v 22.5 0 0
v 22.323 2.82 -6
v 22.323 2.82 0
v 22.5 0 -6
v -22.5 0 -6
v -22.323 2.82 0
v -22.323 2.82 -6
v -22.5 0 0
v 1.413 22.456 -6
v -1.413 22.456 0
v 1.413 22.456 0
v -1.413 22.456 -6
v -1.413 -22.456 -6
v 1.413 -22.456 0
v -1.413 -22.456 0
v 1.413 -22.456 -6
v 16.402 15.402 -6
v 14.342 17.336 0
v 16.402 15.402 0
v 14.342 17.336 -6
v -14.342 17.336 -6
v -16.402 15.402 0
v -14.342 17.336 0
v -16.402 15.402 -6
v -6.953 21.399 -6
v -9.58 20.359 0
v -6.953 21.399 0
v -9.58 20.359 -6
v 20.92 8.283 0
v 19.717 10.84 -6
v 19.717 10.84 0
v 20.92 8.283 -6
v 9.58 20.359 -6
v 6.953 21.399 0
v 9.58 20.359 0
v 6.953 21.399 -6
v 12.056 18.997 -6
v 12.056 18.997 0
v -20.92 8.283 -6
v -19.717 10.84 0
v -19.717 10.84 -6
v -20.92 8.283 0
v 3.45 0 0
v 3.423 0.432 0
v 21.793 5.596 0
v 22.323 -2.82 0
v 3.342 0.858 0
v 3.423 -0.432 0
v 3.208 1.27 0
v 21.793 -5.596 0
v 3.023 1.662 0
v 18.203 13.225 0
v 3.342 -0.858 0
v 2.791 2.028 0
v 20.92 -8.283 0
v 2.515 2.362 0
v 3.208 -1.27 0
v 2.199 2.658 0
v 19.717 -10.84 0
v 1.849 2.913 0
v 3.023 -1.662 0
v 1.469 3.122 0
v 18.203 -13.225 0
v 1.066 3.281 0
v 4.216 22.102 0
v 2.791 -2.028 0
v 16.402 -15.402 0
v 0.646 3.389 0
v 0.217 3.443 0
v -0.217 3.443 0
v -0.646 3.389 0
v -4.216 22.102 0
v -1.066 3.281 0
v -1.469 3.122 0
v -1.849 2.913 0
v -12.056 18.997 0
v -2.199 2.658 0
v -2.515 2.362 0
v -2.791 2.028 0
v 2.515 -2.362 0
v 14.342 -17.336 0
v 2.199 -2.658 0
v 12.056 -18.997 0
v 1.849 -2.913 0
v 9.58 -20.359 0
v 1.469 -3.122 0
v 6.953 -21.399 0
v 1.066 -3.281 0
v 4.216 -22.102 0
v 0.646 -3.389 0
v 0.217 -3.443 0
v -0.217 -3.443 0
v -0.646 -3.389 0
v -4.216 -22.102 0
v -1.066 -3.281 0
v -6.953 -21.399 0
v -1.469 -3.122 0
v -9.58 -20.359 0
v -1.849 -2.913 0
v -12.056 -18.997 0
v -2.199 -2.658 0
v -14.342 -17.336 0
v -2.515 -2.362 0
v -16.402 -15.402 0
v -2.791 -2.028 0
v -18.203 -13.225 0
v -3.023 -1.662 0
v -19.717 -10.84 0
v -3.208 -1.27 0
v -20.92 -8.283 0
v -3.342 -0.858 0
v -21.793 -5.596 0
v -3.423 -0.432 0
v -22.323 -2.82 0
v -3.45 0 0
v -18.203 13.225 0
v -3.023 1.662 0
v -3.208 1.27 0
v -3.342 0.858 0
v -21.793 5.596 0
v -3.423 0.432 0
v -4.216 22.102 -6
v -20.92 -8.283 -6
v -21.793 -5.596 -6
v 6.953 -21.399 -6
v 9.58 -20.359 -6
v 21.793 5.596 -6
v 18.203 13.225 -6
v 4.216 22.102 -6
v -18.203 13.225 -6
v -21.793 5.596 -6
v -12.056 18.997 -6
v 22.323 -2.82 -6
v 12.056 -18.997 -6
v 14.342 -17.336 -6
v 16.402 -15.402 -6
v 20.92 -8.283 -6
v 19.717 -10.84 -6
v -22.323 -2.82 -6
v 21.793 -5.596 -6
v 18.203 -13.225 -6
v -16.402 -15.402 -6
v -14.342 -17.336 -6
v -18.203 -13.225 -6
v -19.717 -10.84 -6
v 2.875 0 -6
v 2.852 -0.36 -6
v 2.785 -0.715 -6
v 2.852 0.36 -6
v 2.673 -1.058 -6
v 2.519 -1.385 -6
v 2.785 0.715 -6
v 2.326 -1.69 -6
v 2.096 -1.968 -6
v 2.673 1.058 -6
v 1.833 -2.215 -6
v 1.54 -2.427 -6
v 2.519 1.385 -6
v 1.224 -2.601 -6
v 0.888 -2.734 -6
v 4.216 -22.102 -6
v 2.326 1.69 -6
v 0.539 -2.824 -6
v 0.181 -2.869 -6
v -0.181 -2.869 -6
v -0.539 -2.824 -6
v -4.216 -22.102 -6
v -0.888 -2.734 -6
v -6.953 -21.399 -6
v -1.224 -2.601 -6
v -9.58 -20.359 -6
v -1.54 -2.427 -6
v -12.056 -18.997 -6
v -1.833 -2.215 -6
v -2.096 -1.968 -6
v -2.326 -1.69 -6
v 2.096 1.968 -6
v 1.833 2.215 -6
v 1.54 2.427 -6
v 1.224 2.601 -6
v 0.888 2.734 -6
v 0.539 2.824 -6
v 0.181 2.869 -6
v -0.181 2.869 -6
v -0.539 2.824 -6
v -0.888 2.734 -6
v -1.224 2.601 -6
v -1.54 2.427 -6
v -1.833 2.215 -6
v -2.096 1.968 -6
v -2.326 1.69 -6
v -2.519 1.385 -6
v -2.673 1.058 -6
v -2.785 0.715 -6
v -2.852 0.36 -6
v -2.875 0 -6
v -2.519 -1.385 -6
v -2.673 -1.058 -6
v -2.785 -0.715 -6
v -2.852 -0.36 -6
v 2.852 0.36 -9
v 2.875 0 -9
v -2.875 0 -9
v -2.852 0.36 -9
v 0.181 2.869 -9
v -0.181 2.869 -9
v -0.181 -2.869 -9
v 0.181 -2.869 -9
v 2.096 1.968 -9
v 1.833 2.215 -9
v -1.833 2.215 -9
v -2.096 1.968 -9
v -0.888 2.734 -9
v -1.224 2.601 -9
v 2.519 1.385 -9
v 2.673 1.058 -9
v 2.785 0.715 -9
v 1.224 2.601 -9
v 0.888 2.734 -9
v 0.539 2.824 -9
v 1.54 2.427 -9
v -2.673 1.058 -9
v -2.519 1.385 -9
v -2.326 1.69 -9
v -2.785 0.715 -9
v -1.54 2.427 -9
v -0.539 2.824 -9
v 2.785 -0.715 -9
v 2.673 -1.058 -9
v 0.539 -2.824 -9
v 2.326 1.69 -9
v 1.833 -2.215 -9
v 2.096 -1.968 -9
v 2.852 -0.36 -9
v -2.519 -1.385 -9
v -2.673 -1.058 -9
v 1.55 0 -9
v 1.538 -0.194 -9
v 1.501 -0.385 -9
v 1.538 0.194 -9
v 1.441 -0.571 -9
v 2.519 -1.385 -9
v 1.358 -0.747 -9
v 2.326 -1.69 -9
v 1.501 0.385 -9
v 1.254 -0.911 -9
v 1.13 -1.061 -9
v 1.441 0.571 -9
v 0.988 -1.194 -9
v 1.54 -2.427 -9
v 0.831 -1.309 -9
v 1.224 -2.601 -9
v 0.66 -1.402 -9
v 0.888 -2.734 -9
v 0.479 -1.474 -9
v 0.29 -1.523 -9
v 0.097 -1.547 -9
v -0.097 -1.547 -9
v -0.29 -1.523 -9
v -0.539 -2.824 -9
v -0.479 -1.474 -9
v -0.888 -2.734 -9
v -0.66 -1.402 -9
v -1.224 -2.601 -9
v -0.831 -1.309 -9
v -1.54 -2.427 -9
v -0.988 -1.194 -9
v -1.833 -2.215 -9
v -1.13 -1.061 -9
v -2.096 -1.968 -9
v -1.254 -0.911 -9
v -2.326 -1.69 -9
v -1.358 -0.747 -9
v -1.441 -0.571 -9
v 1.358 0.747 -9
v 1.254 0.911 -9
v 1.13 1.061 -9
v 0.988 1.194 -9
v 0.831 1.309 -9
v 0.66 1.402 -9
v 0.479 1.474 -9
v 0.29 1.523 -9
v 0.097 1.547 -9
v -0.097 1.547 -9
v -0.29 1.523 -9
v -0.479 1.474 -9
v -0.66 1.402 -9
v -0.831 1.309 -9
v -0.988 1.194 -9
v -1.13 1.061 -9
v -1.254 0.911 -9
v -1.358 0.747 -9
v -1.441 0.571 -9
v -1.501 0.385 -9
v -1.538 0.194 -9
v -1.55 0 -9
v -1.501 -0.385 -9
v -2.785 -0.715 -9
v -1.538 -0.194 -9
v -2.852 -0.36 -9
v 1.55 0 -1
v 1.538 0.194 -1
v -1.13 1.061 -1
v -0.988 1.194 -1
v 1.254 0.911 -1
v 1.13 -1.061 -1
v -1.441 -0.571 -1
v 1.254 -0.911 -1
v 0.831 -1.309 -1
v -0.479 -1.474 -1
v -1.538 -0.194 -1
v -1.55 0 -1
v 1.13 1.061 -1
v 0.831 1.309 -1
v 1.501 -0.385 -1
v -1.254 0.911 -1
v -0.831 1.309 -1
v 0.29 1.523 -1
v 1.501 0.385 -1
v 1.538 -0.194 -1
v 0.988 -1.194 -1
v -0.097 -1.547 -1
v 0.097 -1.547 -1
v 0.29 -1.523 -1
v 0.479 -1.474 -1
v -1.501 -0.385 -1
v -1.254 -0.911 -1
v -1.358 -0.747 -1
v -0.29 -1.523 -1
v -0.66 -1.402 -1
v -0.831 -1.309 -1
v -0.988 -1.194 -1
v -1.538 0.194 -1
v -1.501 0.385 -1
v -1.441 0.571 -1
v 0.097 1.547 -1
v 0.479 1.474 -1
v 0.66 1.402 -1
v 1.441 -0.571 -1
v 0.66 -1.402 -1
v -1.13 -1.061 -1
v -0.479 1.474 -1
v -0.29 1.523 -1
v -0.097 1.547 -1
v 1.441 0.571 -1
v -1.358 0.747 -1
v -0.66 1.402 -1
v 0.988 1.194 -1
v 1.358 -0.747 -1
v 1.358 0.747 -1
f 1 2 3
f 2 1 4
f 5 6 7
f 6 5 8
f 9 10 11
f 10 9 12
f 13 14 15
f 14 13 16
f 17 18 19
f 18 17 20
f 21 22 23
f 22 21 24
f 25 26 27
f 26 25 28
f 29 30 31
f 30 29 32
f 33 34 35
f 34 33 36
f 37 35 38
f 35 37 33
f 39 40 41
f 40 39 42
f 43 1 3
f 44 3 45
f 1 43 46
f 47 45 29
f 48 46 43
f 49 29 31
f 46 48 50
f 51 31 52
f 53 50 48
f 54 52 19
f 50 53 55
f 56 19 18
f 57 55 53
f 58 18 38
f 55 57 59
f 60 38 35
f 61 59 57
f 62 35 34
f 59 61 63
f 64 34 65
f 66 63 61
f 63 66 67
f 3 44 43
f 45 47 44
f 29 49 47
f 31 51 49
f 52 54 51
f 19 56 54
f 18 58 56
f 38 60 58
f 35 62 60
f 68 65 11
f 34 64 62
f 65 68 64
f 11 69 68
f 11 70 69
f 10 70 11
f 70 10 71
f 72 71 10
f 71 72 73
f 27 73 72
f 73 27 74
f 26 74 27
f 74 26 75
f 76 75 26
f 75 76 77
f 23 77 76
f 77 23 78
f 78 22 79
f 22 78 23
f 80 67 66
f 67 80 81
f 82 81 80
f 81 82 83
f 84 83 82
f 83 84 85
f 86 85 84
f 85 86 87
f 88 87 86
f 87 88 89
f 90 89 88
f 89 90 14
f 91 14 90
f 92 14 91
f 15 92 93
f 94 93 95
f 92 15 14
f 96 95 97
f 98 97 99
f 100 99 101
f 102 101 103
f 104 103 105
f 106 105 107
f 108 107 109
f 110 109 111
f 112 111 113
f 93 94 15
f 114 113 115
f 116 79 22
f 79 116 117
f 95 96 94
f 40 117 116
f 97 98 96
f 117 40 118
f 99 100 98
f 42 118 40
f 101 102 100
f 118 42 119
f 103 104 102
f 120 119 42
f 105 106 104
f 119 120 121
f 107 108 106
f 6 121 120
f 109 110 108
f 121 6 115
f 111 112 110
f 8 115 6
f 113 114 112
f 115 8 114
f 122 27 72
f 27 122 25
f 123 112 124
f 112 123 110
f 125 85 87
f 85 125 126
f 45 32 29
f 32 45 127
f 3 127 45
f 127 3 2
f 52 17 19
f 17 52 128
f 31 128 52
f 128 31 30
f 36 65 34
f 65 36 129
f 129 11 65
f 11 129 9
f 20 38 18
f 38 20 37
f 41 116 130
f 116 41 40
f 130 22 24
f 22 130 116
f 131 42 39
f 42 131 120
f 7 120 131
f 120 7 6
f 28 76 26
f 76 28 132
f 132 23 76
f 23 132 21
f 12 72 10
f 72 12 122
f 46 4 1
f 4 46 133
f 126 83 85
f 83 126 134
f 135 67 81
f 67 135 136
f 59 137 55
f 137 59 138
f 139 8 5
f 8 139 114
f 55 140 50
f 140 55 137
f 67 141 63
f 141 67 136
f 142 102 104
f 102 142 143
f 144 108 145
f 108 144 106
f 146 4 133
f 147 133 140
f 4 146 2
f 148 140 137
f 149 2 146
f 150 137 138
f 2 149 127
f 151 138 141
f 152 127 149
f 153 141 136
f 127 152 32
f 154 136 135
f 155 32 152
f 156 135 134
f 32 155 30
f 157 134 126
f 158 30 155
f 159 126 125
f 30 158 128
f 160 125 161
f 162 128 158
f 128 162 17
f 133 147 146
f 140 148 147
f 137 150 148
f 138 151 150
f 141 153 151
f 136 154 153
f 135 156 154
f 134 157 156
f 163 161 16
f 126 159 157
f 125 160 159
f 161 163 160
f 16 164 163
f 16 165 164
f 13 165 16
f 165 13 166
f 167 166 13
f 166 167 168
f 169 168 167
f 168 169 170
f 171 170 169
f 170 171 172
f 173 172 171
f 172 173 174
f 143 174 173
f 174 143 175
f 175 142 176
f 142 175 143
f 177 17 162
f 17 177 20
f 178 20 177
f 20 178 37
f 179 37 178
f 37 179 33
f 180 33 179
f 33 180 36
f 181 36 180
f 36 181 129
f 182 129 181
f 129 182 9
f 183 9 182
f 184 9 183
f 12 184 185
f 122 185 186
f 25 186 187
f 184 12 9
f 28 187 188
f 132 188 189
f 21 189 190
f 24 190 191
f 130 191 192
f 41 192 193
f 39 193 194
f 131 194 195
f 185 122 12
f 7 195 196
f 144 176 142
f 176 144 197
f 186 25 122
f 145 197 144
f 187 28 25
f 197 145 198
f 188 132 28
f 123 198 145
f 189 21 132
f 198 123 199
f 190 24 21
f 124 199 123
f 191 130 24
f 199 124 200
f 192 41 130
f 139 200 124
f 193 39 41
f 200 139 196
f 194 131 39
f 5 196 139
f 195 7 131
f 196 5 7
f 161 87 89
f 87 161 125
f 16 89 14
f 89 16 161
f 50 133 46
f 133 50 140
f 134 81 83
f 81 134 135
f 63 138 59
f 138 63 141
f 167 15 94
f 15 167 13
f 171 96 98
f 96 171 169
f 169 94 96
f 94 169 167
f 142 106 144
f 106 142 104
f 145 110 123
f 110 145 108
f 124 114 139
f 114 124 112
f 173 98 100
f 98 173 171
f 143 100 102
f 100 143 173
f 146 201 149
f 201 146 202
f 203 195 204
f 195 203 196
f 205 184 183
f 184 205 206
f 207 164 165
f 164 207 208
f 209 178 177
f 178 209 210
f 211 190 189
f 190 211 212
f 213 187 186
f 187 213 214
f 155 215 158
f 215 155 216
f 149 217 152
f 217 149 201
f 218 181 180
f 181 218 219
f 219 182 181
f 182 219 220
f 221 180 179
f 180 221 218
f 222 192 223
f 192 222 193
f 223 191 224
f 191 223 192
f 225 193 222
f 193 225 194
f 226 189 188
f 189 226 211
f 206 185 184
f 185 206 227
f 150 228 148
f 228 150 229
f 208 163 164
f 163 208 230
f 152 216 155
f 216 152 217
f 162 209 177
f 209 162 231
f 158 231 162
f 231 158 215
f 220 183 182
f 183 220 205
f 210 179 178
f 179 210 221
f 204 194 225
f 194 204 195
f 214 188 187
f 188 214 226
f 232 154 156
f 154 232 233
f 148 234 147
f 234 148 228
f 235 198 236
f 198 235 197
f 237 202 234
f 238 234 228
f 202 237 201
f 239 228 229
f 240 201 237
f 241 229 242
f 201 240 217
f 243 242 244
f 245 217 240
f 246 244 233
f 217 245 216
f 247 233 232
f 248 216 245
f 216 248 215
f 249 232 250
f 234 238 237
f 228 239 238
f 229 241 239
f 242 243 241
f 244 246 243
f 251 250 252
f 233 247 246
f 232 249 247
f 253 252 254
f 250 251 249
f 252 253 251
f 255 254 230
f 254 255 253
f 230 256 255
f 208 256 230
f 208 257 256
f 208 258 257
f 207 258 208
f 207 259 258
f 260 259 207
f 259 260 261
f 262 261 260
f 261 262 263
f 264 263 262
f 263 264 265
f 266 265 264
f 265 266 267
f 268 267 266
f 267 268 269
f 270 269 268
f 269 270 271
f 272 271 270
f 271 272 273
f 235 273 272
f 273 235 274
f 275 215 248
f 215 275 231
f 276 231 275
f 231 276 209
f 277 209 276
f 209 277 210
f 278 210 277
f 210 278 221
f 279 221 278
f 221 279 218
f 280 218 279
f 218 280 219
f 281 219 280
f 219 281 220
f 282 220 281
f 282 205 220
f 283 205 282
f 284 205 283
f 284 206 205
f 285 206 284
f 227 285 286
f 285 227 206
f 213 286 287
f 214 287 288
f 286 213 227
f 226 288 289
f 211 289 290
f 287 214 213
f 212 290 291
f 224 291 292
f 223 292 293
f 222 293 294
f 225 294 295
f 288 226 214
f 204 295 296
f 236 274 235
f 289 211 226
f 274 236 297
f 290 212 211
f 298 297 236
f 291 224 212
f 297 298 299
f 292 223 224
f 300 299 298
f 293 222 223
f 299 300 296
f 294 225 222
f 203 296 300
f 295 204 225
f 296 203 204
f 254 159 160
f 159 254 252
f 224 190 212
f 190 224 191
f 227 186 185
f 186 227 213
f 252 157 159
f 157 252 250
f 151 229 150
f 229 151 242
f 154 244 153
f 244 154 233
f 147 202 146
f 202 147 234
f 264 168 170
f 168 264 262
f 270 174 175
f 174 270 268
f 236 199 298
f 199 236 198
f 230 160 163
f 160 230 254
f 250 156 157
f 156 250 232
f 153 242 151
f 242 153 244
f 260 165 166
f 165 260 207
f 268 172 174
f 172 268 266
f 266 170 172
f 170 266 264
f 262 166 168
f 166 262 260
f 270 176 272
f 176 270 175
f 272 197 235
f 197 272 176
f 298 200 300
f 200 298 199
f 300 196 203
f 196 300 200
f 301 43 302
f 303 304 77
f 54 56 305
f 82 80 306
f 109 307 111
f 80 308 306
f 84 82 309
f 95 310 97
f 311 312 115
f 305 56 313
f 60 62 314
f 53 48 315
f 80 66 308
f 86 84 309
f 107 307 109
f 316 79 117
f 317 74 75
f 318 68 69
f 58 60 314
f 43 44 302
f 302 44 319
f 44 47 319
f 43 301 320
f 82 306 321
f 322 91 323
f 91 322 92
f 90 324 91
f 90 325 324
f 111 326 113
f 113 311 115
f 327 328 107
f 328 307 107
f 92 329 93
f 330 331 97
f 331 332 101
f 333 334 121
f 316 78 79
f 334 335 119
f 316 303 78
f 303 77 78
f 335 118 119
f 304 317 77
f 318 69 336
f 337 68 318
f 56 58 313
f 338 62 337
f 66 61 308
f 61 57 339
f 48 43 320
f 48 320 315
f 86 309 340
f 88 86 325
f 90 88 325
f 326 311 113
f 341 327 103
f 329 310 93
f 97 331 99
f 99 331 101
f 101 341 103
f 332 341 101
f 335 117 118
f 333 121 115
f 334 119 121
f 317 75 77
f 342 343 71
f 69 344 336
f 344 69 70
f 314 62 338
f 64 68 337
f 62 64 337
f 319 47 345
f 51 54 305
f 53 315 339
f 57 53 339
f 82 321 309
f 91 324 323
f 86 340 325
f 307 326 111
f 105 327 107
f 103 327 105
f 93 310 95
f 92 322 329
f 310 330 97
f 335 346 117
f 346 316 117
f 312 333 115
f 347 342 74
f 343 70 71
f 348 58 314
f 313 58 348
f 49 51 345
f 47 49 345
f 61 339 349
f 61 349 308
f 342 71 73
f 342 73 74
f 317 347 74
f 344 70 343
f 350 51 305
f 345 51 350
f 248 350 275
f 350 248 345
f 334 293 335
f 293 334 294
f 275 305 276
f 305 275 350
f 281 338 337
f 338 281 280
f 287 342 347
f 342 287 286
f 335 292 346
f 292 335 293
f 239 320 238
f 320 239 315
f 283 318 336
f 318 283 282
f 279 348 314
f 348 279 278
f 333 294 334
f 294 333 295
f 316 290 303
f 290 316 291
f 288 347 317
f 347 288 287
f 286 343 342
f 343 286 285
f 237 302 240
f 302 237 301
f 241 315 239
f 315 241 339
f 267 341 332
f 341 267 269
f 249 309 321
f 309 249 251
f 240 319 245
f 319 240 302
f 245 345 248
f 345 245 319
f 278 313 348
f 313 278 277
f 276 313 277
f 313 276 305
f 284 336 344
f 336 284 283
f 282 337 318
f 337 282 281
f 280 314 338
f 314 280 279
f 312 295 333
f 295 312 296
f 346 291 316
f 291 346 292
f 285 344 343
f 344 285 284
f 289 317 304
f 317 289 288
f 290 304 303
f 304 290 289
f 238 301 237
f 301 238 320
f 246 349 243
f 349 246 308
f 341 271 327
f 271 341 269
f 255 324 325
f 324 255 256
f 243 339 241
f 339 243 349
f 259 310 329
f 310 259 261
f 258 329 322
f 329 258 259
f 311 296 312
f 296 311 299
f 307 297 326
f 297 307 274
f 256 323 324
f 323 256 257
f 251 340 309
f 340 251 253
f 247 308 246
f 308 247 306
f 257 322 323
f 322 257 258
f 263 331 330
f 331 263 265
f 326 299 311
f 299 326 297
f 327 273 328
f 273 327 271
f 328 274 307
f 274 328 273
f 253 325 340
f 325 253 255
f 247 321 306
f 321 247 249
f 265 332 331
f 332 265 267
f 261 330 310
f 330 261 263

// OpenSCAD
$fn = 50;


difference() {
	union() {
		translate(v = [0, 0, -6.0000000000]) {
			cylinder(h = 6, r = 22.5000000000);
		}
		translate(v = [0, 0, -9.0000000000]) {
			cylinder(h = 9, r = 2.8750000000);
		}
	}
	union() {
		translate(v = [0, 0, 0]) {
			rotate(a = [0, 0, 0]) {
				difference() {
					union() {
						translate(v = [0, 0, -9.0000000000]) {
							cylinder(h = 9, r = 1.2500000000);
						}
						translate(v = [0, 0, -1.0000000000]) {
							cylinder(h = 1.0000000000, r1 = 1.5500000000, r2 = 3.4500000000);
						}
						translate(v = [0, 0, -9.0000000000]) {
							cylinder(h = 9, r = 1.5500000000);
						}
						translate(v = [0, 0, -9.0000000000]) {
							cylinder(h = 9, r = 1.2500000000);
						}
					}
					union();
				}
			}
		}
	}
}
